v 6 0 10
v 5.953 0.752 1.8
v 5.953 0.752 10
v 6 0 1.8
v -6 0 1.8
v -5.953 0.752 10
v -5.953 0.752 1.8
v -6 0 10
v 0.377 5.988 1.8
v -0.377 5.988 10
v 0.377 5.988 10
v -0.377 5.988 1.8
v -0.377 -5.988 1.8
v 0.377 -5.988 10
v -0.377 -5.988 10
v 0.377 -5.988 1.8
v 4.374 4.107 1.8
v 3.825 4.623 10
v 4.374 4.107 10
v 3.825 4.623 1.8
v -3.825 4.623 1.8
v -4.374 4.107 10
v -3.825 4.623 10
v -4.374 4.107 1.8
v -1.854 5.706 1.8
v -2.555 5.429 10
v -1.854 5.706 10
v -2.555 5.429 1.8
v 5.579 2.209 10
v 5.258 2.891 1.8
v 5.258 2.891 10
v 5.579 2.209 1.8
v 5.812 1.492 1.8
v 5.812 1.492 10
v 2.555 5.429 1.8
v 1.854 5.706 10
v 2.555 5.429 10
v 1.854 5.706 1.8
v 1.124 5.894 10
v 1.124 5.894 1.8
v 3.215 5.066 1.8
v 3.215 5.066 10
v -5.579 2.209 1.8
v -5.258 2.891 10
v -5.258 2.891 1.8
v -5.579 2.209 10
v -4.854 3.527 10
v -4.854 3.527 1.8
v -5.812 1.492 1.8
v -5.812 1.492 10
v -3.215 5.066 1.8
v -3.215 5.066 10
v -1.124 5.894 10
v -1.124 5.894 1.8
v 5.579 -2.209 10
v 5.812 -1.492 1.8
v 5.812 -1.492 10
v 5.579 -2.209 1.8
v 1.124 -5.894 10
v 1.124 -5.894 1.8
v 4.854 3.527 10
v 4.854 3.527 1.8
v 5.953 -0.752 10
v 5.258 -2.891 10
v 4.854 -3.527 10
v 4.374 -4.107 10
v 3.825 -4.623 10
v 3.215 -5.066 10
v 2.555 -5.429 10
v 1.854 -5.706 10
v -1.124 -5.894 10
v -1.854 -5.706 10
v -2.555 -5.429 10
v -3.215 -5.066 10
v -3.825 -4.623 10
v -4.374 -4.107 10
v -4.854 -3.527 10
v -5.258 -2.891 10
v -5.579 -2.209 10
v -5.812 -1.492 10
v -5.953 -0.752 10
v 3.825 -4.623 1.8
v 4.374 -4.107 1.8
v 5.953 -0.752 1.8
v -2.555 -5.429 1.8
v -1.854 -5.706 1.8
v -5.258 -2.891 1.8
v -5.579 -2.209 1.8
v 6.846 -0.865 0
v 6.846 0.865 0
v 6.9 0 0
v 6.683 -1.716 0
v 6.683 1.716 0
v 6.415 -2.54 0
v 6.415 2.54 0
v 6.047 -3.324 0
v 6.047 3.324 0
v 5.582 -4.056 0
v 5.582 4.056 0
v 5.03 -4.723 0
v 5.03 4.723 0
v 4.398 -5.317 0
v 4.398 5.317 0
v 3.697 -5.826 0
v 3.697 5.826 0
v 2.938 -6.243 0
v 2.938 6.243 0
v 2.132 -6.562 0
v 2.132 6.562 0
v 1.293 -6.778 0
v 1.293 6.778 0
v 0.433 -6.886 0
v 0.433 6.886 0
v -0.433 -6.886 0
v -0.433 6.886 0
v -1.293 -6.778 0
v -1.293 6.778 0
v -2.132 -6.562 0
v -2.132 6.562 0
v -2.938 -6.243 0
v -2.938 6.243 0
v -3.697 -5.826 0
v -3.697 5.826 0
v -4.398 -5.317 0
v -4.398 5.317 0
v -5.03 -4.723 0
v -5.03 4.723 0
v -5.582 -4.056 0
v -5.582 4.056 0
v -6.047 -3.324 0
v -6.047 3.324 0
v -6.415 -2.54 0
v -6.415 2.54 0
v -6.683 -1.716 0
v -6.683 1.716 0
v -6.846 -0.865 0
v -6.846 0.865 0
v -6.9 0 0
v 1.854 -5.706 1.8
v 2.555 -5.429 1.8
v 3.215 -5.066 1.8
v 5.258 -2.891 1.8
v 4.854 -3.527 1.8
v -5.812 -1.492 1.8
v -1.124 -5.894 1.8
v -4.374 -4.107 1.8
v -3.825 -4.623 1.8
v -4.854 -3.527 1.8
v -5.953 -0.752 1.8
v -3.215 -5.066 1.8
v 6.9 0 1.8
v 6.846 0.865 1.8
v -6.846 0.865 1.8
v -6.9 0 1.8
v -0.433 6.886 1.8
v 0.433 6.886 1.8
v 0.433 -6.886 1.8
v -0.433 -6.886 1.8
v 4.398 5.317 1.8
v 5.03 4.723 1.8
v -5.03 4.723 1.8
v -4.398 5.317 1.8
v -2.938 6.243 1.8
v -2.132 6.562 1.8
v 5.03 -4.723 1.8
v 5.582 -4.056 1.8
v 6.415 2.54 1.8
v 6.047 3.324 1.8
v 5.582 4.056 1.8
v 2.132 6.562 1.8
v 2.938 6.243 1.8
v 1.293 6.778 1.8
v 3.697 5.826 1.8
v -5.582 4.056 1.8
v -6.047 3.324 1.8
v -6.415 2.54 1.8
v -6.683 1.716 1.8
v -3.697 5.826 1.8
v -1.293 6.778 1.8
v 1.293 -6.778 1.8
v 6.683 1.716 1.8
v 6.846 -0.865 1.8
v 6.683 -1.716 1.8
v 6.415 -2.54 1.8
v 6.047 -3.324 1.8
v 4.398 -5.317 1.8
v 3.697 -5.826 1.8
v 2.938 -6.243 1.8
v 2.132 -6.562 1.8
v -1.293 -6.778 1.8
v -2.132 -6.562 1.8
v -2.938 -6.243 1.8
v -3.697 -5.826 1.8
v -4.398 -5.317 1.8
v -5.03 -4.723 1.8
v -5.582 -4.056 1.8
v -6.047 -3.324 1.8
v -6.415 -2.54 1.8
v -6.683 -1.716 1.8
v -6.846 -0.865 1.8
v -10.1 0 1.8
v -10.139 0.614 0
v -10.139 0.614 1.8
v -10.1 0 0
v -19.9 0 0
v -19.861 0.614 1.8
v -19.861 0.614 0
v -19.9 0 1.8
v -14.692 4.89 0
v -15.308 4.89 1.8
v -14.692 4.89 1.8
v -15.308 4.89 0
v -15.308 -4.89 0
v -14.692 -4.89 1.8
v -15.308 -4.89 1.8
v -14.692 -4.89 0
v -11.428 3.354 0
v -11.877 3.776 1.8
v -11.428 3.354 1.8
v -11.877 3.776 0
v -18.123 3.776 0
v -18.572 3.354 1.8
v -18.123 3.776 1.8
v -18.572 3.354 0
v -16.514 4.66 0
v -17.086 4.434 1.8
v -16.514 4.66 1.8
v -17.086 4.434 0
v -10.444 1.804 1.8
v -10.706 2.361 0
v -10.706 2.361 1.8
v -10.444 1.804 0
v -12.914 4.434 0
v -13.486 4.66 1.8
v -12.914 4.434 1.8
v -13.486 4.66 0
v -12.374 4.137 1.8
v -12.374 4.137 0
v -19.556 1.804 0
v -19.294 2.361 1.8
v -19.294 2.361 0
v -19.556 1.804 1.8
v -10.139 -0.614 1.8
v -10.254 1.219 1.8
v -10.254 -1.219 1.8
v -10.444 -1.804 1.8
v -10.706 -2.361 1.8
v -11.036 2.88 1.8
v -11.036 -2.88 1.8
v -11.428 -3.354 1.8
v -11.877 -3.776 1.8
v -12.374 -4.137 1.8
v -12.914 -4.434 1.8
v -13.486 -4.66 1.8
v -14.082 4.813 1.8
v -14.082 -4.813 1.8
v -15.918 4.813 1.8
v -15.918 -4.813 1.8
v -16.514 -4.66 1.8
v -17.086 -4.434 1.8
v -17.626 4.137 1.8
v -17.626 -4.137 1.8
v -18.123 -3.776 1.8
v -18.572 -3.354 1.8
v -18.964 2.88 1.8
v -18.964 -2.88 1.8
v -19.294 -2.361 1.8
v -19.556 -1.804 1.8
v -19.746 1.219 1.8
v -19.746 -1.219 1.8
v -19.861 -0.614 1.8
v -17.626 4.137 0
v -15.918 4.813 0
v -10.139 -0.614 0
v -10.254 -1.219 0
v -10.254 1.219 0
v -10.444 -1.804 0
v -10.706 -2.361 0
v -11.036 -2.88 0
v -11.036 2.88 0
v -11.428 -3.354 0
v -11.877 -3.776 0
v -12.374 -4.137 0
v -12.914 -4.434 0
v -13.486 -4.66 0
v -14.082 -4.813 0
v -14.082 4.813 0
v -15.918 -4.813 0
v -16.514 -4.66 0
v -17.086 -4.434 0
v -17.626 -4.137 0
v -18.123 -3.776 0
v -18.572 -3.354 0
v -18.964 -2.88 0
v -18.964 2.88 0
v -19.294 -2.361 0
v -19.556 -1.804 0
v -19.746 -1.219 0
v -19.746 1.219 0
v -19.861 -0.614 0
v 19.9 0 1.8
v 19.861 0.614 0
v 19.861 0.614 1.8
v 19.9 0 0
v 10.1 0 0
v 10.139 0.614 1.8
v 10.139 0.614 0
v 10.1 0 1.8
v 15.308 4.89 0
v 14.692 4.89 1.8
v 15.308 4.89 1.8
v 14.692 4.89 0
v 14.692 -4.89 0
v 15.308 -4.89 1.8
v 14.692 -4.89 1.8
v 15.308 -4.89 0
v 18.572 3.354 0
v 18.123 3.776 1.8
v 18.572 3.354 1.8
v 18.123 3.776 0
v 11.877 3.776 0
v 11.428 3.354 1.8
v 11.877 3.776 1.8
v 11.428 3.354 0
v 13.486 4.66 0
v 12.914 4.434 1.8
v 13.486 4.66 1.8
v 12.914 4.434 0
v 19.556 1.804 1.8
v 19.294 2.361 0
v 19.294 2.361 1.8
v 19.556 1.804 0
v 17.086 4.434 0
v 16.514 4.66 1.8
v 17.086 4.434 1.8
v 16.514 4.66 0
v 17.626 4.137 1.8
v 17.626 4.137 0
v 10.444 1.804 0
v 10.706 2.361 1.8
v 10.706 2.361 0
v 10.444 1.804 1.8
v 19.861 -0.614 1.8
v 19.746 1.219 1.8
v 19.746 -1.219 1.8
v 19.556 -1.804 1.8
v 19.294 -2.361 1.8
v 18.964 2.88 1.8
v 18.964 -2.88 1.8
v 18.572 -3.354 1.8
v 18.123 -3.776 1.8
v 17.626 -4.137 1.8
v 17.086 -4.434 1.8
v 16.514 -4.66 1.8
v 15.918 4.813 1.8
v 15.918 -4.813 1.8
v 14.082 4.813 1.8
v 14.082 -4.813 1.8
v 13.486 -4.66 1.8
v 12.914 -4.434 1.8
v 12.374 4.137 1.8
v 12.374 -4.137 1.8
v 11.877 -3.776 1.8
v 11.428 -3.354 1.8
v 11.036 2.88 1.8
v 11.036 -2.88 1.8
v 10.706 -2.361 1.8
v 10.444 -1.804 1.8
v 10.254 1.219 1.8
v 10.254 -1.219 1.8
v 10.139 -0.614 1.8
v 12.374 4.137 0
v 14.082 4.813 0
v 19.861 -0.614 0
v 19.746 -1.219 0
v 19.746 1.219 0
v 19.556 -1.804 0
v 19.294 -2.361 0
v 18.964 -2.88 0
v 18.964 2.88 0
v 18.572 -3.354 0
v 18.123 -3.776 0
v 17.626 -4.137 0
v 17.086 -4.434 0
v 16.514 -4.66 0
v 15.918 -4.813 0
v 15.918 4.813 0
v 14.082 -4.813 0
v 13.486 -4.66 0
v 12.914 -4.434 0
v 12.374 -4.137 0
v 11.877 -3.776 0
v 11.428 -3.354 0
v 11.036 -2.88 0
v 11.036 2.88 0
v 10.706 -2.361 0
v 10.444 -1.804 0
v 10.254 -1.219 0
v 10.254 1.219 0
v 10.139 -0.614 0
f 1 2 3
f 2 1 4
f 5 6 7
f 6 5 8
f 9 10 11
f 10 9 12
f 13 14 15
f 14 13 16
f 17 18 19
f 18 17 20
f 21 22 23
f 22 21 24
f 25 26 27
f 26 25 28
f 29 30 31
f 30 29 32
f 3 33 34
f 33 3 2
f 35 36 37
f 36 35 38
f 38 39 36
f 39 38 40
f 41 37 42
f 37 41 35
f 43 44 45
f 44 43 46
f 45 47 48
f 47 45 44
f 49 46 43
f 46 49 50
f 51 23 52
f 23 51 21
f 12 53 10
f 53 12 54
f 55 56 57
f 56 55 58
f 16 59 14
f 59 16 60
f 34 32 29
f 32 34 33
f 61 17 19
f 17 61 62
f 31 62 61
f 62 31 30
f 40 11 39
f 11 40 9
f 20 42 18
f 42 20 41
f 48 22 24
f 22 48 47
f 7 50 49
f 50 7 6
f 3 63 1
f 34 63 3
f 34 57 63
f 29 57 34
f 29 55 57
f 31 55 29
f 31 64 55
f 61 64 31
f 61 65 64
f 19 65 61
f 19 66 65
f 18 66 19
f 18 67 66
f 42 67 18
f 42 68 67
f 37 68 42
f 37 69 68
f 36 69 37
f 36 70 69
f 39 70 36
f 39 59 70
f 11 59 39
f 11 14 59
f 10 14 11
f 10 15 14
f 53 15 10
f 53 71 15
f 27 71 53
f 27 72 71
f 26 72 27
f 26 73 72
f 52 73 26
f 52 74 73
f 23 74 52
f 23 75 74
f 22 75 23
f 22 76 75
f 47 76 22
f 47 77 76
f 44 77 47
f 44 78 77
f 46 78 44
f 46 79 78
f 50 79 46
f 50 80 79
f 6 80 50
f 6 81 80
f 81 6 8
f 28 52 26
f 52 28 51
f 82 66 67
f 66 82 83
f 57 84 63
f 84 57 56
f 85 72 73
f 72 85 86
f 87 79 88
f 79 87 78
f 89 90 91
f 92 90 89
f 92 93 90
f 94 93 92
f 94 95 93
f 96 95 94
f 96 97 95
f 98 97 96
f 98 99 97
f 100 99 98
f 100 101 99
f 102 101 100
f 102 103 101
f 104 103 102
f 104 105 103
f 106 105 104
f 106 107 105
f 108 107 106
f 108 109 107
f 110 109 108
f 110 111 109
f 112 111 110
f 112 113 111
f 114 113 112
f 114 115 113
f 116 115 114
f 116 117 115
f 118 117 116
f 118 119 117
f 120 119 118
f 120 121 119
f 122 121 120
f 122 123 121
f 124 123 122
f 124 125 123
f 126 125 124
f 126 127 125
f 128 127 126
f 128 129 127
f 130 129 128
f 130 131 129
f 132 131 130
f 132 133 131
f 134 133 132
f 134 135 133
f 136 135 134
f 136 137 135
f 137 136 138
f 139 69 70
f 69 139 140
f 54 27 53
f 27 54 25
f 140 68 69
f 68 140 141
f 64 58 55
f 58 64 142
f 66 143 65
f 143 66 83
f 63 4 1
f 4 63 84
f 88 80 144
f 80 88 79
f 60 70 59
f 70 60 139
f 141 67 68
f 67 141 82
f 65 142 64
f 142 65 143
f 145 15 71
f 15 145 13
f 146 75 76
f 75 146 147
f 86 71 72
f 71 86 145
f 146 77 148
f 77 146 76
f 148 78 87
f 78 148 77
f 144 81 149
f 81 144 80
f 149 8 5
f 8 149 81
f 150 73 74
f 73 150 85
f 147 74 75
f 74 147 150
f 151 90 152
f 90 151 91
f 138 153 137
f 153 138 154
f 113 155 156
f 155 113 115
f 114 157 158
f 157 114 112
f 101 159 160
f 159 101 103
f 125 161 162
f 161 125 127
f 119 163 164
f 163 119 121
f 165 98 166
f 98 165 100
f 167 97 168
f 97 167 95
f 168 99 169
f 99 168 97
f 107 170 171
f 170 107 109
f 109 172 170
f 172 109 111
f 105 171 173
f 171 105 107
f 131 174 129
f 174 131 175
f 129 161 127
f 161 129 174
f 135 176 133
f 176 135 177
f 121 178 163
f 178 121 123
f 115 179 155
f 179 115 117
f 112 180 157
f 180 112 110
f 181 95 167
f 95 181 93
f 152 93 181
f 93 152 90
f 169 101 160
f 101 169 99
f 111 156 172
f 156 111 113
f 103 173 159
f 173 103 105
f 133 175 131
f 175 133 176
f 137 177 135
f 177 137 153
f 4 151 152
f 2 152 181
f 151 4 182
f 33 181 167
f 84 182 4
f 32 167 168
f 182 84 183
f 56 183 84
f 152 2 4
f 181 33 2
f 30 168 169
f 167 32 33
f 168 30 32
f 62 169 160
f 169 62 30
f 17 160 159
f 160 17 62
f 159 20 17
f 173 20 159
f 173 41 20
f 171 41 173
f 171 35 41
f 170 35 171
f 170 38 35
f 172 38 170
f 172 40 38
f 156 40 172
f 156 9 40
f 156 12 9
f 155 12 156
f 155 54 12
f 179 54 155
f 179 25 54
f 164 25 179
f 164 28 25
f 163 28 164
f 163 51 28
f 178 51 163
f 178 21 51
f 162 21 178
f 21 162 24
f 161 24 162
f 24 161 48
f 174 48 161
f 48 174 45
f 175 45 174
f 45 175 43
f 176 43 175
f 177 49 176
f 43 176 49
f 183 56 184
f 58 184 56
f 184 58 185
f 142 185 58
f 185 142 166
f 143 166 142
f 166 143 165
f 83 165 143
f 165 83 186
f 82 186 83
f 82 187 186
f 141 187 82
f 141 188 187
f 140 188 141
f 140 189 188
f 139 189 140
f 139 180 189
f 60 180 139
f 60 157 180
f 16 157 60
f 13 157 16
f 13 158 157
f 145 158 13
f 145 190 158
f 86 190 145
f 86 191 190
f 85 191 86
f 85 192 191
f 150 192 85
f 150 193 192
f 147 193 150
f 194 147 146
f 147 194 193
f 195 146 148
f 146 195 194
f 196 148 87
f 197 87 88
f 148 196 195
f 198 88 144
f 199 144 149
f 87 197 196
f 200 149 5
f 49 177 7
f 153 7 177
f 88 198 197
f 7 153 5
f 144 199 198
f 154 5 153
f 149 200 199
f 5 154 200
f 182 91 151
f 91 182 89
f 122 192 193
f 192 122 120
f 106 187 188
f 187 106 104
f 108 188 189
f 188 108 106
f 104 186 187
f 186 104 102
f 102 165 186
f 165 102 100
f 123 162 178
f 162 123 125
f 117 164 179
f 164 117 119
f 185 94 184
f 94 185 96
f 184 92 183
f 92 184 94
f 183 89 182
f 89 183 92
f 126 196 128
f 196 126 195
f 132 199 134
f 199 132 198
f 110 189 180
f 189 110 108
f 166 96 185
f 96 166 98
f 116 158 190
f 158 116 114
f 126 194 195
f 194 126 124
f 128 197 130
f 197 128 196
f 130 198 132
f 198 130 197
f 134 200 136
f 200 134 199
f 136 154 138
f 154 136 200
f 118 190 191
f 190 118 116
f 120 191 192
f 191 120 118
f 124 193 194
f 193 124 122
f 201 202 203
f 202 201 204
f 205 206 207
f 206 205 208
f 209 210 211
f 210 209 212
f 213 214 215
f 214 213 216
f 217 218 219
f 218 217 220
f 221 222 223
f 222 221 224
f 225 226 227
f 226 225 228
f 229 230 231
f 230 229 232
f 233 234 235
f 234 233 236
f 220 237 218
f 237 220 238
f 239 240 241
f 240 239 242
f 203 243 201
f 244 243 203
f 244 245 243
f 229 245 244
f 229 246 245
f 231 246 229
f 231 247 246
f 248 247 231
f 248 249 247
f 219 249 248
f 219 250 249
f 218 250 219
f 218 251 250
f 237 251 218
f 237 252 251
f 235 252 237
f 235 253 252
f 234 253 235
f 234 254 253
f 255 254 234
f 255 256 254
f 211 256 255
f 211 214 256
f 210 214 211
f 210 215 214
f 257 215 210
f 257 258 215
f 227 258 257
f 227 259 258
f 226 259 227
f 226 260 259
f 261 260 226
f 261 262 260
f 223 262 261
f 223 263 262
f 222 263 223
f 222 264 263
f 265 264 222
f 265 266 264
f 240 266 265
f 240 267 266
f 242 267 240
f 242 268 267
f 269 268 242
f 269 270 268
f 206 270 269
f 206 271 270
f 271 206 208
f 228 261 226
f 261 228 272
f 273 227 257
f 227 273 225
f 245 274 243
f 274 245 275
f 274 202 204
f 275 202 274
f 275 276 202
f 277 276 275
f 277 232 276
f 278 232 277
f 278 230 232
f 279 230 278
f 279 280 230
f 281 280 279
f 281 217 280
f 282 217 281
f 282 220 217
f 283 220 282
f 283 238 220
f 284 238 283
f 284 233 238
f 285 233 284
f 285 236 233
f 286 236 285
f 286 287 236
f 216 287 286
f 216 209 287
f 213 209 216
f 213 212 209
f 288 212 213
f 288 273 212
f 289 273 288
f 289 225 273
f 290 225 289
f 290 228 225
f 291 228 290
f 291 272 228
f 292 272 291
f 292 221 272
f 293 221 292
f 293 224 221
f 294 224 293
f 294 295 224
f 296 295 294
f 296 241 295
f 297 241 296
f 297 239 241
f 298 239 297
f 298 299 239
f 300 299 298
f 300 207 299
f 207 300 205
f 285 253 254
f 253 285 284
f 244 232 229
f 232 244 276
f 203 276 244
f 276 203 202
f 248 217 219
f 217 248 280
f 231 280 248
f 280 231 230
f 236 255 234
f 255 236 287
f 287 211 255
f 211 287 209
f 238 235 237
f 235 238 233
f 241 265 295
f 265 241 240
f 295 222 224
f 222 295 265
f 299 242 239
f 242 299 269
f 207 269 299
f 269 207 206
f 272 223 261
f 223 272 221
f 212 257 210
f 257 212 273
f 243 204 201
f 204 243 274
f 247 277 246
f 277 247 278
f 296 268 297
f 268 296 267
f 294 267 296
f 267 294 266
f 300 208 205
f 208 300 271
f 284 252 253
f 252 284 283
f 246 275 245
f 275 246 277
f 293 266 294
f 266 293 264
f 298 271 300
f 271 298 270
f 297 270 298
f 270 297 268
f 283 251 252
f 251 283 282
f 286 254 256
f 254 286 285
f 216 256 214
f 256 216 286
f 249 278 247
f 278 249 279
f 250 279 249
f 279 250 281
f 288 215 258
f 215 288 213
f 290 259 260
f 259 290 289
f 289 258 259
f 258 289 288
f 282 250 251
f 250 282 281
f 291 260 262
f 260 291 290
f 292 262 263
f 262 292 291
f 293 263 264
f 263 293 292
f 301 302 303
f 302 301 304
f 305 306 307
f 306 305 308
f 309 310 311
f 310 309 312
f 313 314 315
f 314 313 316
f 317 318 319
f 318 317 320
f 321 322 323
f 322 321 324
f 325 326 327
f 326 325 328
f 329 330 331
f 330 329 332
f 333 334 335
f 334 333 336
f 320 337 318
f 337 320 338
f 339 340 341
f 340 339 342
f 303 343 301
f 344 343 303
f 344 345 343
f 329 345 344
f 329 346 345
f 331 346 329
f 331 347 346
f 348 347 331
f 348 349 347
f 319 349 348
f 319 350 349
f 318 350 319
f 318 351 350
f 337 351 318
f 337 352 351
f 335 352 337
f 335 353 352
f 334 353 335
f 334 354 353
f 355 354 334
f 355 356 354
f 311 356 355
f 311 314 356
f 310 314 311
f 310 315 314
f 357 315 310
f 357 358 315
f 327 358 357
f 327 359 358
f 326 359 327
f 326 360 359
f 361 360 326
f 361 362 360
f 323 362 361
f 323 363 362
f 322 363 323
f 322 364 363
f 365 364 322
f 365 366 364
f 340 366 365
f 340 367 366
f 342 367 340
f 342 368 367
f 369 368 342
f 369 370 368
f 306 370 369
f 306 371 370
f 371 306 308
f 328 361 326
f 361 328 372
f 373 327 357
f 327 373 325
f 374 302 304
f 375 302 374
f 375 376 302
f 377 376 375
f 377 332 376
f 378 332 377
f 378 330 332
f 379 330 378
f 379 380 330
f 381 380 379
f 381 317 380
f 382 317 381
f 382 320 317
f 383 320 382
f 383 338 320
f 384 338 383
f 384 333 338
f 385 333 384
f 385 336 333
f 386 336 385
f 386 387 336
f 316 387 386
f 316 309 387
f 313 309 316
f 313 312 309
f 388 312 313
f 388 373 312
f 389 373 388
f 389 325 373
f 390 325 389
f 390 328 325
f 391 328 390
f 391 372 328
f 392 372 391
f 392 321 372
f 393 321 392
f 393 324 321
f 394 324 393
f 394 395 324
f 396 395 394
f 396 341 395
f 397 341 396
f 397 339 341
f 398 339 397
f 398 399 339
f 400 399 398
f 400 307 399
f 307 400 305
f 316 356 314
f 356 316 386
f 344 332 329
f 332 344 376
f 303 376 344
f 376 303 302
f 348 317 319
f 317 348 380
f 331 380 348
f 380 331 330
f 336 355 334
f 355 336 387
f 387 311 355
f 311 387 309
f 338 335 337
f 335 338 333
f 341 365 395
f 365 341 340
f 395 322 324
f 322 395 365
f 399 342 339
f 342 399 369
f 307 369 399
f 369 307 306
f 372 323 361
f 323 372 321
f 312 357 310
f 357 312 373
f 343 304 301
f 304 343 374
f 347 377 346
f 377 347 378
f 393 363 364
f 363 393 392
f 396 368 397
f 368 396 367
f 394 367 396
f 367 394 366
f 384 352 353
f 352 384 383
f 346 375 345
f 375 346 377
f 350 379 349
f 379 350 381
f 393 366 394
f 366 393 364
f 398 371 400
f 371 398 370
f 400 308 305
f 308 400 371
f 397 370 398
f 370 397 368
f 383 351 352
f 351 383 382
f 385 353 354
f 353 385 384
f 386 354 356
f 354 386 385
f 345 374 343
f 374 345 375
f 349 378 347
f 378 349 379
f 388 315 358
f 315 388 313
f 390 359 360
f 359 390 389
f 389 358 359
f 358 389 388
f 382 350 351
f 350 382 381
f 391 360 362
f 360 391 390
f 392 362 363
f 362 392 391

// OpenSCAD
$fn=50;

cylinder (d=12, h=10);                          //Plug Lead screw
cylinder (d=13.8, h=1.8);
translate([-15,0,0]) cylinder (d=9.8, h=1.8);   //Plugs Lead rods
translate([15,0,0]) cylinder (d=9.8, h=1.8);
